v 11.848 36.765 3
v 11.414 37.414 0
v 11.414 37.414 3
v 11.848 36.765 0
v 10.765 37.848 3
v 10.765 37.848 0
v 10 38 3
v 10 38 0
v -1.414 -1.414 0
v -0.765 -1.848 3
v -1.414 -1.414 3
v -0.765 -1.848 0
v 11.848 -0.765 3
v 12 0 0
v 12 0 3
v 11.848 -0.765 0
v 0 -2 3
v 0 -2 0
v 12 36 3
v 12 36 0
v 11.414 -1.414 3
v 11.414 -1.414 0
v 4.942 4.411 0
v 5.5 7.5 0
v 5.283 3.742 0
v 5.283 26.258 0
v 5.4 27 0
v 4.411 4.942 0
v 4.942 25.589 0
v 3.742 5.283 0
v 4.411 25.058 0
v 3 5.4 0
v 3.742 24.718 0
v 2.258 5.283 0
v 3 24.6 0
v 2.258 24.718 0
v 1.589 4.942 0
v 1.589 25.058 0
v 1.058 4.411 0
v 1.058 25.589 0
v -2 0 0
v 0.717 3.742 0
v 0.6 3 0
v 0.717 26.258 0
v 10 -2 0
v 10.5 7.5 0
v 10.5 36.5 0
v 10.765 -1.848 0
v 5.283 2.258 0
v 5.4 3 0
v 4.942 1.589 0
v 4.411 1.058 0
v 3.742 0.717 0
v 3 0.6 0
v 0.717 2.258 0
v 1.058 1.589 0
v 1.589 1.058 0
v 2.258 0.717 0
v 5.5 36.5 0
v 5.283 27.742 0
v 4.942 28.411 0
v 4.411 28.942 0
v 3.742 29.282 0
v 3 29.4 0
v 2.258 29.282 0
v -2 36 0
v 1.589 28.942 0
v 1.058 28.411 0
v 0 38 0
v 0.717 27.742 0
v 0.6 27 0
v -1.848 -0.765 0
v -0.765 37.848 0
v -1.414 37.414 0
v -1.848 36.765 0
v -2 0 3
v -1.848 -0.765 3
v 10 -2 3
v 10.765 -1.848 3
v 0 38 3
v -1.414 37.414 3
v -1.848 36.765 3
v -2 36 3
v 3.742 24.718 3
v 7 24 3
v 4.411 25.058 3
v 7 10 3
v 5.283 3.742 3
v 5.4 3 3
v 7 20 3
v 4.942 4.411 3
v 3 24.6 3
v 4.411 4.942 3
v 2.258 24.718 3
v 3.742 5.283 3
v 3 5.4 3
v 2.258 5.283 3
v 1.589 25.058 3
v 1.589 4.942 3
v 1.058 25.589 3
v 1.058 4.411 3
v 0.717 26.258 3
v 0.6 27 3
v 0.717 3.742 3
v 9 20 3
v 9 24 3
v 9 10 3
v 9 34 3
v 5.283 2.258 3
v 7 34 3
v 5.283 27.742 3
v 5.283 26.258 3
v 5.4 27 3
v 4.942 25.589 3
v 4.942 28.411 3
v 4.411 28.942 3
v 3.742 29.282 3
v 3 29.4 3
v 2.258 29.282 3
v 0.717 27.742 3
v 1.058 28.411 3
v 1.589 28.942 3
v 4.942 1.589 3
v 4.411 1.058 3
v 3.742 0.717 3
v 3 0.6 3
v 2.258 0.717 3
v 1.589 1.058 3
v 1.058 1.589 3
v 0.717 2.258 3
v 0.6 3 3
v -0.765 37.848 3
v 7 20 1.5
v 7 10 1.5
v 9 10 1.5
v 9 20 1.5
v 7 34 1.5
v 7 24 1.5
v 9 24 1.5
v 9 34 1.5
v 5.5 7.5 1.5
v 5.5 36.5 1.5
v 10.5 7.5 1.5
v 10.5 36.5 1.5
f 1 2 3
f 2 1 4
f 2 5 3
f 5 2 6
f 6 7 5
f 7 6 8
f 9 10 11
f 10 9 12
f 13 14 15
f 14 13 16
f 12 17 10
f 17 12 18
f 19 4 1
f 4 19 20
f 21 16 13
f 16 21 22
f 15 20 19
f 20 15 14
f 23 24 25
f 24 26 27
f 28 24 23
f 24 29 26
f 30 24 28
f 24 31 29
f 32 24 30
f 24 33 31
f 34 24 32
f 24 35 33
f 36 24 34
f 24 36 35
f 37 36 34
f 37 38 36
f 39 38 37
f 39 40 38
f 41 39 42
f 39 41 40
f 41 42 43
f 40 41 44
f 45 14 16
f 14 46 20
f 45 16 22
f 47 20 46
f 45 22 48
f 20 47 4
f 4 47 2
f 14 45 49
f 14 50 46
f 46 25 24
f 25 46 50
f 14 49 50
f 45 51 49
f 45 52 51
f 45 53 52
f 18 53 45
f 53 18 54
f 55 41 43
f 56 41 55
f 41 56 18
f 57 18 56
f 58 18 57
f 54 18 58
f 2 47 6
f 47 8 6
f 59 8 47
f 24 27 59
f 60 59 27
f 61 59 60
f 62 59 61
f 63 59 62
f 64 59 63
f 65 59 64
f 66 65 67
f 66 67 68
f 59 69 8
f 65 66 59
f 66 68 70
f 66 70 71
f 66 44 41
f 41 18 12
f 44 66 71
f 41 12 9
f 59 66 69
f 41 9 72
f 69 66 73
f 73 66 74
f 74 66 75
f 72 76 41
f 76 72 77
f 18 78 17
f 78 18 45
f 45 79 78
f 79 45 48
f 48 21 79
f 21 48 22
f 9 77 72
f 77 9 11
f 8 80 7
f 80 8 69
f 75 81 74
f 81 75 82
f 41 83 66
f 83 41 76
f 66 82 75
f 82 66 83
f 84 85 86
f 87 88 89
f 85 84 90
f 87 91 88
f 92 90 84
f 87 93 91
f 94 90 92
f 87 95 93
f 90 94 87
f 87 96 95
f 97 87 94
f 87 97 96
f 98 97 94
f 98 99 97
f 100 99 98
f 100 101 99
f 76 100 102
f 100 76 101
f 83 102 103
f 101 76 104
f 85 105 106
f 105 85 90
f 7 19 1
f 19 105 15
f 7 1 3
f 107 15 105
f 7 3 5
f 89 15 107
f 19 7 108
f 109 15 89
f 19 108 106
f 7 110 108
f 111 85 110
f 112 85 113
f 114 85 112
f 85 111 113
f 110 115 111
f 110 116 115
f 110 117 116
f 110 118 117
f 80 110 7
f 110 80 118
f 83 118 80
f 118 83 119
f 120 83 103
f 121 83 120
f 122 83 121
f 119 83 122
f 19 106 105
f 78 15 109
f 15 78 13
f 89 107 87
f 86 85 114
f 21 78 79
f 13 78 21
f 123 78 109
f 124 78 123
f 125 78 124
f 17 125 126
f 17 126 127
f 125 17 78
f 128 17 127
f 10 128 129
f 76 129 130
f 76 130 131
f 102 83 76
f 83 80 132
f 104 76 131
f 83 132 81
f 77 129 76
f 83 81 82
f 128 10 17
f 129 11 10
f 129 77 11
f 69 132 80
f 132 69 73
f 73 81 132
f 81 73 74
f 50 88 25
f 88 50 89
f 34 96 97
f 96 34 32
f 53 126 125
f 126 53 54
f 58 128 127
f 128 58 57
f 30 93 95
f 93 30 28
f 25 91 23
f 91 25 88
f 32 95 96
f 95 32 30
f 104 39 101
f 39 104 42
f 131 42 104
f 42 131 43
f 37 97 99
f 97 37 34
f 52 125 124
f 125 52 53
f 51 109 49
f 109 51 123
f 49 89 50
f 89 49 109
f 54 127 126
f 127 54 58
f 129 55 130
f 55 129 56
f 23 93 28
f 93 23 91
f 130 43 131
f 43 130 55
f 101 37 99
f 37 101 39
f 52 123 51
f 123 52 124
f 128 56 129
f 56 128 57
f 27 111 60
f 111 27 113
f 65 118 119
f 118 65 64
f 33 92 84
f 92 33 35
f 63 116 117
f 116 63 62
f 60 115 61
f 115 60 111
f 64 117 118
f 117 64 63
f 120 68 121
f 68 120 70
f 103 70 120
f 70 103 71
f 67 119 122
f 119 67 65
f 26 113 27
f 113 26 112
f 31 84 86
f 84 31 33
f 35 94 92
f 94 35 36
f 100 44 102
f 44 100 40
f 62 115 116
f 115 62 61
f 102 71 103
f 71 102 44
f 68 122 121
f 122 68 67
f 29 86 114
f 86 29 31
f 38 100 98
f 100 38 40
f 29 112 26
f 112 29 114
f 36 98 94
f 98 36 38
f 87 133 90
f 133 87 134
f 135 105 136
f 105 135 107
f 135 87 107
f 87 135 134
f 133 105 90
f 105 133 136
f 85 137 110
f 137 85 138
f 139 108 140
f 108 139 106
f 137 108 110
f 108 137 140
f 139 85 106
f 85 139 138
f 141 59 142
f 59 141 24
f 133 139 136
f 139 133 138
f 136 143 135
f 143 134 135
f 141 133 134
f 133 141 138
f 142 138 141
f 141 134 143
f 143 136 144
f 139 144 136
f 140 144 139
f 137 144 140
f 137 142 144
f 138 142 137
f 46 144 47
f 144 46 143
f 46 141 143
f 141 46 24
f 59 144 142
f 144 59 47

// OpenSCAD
difference(){
linear_extrude(3)
	minkowski(){
		square([10,36]);
		circle(2, $fn=16);
	}

translate([3,3,-0.5])
	cylinder(5, 2.4, 2.4, $fn=20);
translate([3,27,-0.5])
	cylinder(5, 2.4, 2.4, $fn=20);

translate([7,10,-0.5])
	cube([2,10,5]);
translate([7,24,-0.5])
	cube([2,10,5]);

translate([5.5,7.5,-3.5])
	cube([5,29,5]);
}
